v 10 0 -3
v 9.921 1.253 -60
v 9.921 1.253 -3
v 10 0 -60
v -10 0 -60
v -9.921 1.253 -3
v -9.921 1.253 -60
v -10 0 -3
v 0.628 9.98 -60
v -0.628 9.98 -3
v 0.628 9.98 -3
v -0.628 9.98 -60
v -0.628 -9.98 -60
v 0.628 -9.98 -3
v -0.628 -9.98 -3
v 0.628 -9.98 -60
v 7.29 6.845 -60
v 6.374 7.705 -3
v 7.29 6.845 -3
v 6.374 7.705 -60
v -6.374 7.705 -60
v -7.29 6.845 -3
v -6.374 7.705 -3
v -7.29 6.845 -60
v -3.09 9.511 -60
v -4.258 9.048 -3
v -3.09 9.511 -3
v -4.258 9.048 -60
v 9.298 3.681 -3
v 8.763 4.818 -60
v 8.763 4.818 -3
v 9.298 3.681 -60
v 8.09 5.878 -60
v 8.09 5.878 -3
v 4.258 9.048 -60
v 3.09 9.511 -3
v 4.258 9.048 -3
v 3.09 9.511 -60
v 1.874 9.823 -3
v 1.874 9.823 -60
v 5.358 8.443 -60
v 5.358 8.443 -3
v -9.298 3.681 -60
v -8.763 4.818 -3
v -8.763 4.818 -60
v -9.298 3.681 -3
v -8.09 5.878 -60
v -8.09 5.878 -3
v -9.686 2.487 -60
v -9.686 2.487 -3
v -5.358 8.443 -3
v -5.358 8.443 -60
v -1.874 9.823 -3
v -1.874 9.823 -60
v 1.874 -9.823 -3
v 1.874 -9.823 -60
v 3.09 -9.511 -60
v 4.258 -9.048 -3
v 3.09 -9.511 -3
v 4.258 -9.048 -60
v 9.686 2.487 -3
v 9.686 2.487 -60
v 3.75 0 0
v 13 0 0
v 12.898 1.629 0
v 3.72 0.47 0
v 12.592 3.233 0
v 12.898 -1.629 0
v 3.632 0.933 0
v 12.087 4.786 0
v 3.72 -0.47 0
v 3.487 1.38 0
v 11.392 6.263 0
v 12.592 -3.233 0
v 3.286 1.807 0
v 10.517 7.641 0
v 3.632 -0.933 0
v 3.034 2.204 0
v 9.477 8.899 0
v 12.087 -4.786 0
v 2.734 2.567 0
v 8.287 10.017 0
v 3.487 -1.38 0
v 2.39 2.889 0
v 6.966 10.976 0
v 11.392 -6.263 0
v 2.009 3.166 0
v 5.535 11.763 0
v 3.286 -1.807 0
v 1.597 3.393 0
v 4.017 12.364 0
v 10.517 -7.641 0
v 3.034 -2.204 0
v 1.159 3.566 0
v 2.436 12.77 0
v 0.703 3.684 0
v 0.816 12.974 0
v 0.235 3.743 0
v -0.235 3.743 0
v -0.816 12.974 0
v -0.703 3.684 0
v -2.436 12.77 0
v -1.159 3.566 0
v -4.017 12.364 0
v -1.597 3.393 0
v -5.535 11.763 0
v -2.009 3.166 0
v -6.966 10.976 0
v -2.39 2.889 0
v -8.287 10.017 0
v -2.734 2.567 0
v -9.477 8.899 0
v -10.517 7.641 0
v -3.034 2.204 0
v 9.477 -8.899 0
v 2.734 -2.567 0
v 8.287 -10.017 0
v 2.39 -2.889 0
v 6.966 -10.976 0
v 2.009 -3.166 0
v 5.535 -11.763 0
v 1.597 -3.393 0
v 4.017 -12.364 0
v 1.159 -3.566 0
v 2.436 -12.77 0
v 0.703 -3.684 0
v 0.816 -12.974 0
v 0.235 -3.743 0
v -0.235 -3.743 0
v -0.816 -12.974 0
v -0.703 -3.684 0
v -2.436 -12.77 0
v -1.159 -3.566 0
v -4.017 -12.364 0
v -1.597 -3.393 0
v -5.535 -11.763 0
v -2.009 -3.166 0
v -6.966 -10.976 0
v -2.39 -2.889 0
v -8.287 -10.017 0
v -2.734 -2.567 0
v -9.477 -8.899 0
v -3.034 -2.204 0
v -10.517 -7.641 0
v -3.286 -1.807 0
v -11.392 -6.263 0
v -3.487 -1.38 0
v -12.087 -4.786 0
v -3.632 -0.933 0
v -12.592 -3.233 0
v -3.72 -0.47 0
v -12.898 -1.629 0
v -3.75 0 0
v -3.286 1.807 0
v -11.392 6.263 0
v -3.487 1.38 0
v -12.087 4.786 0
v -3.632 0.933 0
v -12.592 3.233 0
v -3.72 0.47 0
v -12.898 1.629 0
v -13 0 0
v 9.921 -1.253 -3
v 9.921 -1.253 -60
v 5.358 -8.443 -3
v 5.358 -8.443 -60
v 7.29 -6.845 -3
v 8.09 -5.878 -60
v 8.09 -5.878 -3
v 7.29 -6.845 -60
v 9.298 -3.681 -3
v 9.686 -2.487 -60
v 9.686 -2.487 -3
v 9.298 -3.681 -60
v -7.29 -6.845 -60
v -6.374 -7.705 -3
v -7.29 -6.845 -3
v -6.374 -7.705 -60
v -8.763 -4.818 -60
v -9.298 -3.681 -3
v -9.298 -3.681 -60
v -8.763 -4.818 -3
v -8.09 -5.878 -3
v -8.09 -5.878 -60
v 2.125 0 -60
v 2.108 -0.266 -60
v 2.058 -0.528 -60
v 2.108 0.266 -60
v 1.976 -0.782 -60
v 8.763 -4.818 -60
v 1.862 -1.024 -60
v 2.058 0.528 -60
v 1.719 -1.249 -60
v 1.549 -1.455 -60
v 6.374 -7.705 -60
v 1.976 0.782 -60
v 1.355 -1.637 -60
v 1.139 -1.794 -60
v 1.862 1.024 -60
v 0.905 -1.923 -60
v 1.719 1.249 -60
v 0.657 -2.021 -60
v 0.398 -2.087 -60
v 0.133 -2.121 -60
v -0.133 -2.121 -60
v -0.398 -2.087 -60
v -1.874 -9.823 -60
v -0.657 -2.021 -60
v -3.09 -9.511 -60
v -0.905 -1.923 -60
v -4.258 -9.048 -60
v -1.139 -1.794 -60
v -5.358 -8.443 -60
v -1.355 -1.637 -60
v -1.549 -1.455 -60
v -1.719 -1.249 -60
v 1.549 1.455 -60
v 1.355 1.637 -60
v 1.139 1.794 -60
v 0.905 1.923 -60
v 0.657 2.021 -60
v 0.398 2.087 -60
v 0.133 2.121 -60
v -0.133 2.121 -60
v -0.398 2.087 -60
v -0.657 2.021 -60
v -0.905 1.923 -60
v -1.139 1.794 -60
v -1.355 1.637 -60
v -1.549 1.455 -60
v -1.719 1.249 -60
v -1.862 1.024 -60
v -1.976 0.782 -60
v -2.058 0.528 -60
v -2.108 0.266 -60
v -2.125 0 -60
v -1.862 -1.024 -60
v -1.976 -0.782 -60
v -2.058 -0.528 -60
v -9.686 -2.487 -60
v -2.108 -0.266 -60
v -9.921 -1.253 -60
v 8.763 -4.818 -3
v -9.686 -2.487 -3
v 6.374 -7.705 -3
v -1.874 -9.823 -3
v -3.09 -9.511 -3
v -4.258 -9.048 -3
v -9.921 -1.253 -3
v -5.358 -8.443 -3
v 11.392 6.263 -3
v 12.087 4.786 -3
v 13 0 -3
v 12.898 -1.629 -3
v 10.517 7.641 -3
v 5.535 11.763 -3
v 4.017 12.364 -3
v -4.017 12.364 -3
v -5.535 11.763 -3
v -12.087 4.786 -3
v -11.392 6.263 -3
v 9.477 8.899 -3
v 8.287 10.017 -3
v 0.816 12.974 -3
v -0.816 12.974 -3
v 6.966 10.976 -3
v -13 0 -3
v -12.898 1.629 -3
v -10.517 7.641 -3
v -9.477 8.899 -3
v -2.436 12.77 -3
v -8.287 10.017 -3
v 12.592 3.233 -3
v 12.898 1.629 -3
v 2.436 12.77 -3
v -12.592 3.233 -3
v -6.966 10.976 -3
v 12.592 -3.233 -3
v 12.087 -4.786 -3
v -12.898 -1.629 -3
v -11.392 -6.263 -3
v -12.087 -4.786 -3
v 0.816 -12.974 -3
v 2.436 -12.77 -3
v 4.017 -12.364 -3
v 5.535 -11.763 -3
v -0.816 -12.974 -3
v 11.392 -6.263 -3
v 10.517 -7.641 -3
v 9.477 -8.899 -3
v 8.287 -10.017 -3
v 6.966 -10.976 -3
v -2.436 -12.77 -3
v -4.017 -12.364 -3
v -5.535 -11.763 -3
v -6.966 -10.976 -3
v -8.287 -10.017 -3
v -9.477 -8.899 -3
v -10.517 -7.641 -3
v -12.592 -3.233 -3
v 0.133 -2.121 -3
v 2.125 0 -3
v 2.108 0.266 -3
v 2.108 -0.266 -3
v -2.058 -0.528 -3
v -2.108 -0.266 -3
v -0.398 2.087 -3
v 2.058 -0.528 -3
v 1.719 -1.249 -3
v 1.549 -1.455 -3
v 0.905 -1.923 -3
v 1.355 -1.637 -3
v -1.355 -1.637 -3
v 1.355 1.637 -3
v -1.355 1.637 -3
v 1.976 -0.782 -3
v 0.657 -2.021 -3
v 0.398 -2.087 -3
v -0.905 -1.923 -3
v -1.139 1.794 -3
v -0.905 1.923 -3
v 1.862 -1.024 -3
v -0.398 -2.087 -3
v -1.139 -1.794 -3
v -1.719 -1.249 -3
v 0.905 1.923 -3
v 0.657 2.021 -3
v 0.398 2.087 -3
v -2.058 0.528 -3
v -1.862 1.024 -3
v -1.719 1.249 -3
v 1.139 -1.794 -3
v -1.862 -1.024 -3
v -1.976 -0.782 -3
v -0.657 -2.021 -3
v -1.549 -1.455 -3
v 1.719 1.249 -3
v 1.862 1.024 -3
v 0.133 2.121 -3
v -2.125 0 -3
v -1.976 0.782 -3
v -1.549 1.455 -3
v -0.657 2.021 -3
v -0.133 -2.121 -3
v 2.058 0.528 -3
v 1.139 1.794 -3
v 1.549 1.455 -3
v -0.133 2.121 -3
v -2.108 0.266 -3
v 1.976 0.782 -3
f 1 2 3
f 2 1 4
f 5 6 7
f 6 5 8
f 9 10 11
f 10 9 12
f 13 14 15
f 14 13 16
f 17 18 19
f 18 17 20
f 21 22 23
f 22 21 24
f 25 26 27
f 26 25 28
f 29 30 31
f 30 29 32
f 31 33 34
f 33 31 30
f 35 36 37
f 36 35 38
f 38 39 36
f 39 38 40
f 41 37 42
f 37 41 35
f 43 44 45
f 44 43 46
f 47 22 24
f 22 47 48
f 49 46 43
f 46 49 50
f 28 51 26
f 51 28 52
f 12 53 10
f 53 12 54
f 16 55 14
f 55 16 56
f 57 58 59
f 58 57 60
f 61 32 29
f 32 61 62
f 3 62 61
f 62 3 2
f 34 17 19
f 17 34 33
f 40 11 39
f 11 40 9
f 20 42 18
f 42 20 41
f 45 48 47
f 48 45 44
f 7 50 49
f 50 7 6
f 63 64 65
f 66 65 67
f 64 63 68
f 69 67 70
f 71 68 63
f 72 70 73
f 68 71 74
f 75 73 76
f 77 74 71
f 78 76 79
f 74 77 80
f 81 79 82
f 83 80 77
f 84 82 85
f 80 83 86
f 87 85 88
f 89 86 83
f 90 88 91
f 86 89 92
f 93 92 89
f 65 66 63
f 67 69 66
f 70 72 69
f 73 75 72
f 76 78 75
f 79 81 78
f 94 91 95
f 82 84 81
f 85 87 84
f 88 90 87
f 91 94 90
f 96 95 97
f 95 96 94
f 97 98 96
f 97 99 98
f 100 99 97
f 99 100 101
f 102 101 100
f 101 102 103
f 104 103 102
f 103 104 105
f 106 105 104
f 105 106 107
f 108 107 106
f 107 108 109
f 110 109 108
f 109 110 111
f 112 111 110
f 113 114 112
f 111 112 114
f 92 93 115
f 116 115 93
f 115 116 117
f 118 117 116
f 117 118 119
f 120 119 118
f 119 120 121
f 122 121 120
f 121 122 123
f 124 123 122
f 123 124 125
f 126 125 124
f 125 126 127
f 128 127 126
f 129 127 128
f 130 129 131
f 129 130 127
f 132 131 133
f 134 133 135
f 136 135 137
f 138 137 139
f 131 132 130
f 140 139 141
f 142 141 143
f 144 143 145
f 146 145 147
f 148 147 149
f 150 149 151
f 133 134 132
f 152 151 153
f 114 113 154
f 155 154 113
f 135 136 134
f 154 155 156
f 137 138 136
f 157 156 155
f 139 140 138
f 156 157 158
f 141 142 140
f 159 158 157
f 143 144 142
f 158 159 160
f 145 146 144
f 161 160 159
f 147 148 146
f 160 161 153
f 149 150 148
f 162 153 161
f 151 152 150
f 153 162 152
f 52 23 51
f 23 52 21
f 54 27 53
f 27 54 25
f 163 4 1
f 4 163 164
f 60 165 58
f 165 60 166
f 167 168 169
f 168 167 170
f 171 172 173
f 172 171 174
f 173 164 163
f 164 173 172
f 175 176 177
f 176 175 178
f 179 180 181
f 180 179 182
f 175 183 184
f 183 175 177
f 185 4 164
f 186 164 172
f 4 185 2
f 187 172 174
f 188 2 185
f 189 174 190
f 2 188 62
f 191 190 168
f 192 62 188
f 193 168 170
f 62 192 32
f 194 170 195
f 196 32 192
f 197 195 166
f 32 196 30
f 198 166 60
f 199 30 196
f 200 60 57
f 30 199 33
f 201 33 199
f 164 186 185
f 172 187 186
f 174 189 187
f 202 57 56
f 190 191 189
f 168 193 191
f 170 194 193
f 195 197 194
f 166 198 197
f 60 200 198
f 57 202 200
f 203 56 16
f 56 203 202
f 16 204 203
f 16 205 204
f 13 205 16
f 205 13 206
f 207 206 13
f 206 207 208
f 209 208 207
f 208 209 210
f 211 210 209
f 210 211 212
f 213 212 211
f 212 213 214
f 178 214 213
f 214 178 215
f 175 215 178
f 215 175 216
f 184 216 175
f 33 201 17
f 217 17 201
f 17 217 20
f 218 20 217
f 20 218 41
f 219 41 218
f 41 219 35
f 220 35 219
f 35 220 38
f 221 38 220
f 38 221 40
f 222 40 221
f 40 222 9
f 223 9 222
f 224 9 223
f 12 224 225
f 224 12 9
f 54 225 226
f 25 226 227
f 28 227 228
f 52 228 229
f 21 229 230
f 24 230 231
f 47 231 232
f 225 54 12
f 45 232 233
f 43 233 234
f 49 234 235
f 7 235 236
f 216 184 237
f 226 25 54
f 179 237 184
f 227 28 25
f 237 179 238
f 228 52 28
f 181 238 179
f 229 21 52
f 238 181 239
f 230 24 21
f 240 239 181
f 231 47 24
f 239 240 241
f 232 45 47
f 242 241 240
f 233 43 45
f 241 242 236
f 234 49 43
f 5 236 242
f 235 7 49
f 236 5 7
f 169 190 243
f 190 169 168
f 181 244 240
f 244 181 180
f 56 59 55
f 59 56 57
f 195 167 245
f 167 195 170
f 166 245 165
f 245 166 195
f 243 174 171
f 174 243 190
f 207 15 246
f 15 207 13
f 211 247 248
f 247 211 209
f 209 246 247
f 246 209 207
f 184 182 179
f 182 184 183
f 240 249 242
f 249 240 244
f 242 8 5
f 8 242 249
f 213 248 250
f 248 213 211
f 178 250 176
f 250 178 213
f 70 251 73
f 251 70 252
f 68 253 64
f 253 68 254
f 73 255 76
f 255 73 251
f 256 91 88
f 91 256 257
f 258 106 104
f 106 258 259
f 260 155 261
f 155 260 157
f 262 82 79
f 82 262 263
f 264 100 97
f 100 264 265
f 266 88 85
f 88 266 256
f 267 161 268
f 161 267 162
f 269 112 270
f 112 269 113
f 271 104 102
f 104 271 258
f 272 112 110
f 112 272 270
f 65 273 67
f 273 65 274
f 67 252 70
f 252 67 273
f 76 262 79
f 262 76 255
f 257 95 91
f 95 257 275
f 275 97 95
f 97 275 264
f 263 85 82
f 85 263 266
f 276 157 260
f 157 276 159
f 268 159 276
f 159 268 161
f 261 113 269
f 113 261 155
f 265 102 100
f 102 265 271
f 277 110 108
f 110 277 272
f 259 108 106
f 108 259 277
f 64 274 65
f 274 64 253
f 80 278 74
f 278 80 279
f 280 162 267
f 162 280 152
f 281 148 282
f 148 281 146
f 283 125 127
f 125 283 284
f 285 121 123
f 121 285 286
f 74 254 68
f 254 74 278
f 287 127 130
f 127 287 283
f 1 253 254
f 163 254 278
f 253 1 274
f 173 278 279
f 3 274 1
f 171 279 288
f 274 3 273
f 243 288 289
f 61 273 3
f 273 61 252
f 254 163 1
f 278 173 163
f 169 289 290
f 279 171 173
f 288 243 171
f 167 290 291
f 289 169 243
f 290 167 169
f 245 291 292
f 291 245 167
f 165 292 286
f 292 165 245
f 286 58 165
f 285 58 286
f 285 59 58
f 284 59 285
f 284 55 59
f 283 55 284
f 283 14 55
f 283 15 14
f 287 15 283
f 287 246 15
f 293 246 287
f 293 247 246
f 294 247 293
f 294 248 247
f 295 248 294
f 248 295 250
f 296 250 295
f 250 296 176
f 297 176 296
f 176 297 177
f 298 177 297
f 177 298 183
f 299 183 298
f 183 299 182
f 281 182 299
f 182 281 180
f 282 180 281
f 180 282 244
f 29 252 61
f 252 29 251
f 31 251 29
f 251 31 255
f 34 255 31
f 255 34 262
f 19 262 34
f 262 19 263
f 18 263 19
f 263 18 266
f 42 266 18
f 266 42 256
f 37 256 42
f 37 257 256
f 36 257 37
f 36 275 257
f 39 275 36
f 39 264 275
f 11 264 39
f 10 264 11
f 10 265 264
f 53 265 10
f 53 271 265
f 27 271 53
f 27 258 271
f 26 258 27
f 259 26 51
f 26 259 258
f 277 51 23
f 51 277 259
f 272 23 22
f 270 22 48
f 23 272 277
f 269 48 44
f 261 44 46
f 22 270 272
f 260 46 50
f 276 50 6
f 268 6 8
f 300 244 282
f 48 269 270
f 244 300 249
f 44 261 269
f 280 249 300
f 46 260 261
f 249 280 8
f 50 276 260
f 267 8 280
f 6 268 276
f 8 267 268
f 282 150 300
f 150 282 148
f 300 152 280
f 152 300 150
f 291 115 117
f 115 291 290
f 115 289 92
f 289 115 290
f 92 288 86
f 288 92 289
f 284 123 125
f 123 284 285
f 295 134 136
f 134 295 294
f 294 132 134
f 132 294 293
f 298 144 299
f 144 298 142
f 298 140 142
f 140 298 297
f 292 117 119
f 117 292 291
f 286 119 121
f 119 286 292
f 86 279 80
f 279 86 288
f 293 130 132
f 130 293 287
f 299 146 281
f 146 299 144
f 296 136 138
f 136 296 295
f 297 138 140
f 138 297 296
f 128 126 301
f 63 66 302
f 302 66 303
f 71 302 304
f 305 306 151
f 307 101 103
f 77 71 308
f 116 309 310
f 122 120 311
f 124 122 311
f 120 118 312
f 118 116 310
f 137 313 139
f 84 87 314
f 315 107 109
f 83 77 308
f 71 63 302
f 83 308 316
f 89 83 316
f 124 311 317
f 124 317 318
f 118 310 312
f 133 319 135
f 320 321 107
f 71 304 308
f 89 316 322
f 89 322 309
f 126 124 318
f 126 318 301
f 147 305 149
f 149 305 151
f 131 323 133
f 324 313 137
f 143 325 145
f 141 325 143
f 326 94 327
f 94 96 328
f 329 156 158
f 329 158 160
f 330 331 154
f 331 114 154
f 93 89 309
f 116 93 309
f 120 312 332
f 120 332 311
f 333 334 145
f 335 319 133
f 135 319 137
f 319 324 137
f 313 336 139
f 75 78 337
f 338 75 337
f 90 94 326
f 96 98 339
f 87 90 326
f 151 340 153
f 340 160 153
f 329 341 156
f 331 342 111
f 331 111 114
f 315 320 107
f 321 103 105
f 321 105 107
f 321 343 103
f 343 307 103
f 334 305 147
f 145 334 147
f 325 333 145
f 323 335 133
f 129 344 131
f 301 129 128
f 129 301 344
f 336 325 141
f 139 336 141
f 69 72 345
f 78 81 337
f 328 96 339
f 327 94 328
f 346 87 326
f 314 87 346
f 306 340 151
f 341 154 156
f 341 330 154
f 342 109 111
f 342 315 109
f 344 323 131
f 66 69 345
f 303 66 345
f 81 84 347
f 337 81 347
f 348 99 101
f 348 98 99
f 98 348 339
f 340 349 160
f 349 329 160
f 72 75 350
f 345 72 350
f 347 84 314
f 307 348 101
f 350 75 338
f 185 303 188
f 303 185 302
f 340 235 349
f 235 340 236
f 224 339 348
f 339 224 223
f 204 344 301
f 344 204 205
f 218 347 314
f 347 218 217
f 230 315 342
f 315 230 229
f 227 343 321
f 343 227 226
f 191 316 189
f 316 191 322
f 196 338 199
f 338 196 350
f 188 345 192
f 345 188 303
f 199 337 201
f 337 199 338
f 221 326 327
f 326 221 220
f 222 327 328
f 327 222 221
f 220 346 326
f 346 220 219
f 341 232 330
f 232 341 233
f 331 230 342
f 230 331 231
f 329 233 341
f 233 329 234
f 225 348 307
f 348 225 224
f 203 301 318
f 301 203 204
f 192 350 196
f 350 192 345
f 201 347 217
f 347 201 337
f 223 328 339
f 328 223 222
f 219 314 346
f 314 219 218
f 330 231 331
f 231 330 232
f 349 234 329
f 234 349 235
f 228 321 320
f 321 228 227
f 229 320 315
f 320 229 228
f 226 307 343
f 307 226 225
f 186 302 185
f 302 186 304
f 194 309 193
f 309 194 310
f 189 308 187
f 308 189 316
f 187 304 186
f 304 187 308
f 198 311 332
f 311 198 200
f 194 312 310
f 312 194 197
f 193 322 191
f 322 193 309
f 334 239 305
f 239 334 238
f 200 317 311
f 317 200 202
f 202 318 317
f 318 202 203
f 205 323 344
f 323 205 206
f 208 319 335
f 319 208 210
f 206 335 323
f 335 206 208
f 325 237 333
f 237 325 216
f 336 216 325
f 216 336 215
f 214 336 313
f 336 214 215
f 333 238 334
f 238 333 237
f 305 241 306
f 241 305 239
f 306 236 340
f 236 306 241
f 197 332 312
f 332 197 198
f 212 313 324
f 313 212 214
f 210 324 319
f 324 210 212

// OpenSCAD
$fn = 50;


difference() {
	union() {
		translate(v = [0, 0, -60.0000000000]) {
			cylinder(h = 60, r = 10.0000000000);
		}
		translate(v = [0, 0, -3.0000000000]) {
			cylinder(h = 3, r = 13.0000000000);
		}
	}
	union() {
		translate(v = [0, 0, 0]) {
			rotate(a = [0, 0, 0]) {
				difference() {
					union() {
						#translate(v = [0, 0, -60.0000000000]) {
							cylinder(h = 60, r = 2.0000000000);
						}
						#translate(v = [0, 0, -3]) {
							cylinder(h = 3, r = 10.0000000000, r1 = 2.1250000000, r2 = 3.7500000000);
						}
						#translate(v = [0, 0, -60.0000000000]) {
							cylinder(h = 60, r = 2.1250000000);
						}
						#translate(v = [0, 0, -60.0000000000]) {
							cylinder(h = 60, r = 2.0000000000);
						}
					}
					union();
				}
			}
		}
	}
}
